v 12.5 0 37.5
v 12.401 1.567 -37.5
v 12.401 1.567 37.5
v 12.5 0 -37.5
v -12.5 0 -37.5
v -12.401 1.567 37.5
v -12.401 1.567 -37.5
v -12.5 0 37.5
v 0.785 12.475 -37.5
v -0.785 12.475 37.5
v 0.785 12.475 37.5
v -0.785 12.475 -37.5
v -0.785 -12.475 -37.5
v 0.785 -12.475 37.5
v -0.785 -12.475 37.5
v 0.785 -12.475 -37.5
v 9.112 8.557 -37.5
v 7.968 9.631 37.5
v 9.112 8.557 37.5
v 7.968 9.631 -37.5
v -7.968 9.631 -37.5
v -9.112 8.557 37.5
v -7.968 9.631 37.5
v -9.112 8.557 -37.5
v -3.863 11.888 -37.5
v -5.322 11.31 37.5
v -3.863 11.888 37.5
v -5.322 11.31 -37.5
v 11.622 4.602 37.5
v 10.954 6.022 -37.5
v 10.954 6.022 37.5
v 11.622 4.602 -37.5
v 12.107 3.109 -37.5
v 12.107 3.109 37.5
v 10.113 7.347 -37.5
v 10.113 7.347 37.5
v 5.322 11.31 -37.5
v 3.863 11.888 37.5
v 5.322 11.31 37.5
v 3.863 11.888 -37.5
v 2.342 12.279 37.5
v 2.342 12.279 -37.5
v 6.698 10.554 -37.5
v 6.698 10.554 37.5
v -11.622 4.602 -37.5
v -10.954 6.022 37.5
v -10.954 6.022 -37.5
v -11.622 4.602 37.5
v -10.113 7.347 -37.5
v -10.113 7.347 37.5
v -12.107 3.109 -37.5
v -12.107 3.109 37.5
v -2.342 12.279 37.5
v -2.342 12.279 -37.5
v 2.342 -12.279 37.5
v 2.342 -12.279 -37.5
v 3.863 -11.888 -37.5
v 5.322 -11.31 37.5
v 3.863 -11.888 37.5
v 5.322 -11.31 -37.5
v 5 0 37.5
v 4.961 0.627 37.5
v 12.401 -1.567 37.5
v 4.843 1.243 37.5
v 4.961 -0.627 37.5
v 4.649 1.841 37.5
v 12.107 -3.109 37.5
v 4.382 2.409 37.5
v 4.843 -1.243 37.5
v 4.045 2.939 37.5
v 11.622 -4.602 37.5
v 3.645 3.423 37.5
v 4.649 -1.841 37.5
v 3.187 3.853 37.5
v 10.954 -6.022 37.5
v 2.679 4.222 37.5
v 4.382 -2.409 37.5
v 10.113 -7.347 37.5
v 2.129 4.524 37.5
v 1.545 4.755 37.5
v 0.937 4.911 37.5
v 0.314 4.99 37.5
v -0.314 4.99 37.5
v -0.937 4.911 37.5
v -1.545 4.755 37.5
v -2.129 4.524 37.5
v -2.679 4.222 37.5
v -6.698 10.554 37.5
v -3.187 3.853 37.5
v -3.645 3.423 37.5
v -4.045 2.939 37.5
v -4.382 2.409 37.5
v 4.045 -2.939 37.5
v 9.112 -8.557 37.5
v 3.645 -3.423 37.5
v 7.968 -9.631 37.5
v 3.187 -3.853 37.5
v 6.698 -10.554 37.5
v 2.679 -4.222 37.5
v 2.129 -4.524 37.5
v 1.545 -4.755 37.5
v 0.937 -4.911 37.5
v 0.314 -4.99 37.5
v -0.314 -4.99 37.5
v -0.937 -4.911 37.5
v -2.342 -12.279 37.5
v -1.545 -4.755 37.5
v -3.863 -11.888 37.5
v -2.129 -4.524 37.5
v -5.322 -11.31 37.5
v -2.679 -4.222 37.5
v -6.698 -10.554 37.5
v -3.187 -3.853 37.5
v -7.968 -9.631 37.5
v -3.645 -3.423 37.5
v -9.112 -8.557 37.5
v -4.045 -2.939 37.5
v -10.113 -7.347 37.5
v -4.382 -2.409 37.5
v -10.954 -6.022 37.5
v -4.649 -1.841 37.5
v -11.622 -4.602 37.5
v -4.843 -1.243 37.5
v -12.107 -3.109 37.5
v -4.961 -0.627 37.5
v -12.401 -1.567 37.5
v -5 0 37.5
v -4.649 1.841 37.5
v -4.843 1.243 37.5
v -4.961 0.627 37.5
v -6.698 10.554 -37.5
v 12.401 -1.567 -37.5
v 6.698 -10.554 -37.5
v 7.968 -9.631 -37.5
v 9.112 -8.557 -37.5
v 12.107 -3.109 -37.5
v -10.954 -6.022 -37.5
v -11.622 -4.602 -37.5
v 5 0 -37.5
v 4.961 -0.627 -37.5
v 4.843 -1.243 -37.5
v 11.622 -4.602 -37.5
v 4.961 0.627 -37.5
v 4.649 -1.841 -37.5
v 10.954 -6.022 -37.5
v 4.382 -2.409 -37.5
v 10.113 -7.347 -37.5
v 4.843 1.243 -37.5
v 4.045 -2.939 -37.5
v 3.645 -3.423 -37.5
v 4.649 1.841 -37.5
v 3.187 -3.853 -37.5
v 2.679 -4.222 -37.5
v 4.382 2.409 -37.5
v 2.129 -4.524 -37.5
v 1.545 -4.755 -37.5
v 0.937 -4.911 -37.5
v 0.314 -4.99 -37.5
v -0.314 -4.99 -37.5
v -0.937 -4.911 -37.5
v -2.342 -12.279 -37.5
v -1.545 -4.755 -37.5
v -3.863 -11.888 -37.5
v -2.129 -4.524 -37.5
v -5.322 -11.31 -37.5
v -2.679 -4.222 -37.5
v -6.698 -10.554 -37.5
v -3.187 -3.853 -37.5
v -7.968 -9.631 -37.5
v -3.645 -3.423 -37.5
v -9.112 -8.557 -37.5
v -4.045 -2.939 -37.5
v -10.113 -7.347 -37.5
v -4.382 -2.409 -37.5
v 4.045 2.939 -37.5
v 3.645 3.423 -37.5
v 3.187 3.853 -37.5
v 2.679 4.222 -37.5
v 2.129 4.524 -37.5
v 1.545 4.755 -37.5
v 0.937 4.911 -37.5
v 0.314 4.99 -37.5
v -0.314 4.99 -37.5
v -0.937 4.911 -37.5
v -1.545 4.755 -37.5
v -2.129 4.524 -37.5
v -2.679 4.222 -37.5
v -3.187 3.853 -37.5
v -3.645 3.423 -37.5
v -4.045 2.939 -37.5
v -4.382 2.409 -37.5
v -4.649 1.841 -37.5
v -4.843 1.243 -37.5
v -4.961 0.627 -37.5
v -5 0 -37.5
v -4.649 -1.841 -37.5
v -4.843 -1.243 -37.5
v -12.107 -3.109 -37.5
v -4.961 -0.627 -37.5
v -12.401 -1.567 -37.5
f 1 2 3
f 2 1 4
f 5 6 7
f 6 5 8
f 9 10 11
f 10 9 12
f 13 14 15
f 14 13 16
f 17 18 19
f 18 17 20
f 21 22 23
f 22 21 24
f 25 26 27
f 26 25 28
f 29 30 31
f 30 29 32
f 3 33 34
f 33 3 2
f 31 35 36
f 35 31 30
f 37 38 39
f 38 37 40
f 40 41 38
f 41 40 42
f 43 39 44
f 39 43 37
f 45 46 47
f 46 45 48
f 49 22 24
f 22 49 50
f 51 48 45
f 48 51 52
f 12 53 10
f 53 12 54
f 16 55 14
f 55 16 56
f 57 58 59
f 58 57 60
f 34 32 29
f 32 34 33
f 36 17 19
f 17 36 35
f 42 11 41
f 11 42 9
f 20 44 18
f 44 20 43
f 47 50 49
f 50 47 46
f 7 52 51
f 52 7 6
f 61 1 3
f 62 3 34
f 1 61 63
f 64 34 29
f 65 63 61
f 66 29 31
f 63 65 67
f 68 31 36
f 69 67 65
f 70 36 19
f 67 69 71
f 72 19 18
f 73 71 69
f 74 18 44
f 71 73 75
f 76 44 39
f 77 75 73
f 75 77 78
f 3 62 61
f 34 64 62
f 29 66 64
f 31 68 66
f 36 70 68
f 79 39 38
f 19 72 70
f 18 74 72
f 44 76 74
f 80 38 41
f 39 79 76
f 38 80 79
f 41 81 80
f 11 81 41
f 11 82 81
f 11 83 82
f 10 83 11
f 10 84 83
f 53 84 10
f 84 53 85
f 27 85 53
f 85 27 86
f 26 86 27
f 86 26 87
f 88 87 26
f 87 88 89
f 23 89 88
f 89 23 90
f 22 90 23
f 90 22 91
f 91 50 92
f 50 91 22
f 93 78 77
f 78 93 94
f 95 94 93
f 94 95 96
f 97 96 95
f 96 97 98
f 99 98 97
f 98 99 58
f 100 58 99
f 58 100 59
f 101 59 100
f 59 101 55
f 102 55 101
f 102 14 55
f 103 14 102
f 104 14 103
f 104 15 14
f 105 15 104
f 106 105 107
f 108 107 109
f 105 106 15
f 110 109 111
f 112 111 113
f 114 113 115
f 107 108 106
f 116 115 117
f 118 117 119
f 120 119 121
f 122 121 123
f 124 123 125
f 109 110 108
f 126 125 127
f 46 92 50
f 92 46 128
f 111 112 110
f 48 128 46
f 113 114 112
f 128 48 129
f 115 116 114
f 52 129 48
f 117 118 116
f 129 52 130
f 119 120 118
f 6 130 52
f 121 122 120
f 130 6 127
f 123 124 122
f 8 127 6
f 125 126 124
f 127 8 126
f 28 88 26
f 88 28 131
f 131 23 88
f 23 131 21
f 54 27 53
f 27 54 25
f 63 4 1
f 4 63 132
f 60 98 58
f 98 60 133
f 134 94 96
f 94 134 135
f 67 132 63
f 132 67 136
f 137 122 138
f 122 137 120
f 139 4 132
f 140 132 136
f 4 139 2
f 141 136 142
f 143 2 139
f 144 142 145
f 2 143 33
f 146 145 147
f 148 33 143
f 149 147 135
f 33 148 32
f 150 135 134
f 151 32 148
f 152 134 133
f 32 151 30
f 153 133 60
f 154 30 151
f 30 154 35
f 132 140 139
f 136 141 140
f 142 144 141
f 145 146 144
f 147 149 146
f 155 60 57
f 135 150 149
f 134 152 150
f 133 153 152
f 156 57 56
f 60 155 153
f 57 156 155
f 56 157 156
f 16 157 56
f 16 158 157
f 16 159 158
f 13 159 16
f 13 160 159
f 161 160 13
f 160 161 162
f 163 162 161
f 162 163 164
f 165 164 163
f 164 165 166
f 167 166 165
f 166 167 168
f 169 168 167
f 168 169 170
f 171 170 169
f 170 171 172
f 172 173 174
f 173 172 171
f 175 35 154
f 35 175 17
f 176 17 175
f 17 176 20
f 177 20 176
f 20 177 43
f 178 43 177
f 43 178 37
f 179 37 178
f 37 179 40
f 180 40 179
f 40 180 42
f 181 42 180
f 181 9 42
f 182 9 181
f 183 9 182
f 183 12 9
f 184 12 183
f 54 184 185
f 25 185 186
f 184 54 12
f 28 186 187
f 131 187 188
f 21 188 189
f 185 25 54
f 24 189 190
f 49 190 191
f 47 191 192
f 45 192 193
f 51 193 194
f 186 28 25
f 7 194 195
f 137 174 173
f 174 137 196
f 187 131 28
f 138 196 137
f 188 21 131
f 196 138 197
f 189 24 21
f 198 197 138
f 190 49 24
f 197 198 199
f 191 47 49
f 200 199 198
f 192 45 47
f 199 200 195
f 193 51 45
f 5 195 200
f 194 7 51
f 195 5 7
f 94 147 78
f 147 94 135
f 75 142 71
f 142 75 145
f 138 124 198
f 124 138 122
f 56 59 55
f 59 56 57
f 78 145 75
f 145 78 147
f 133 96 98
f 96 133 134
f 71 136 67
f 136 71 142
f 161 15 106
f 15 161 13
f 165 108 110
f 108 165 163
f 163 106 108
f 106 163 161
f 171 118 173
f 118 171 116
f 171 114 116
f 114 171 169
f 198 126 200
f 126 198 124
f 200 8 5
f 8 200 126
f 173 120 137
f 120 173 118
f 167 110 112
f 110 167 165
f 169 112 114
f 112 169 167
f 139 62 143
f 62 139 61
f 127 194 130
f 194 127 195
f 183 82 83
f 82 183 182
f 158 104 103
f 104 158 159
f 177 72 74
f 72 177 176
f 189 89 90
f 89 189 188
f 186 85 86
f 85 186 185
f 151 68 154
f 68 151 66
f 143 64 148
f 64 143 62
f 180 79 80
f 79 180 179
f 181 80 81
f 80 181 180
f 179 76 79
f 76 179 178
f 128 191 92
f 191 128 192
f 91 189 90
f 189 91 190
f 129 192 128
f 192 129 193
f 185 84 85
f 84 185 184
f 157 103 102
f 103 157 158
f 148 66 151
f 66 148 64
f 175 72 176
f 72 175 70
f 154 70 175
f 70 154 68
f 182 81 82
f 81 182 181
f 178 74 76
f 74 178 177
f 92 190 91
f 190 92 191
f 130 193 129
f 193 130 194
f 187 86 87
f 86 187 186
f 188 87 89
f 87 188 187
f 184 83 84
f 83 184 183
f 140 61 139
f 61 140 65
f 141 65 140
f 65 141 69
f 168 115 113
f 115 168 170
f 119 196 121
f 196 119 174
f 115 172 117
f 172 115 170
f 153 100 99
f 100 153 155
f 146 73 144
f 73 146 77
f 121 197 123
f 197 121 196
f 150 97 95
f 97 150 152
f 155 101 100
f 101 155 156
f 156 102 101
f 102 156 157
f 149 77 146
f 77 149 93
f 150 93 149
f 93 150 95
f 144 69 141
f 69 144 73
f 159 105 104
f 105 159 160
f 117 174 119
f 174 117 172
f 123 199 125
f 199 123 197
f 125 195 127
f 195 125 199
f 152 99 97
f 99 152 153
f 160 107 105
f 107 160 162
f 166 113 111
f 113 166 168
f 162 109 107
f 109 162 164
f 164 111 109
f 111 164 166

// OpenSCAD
$fn = 50;


difference() {
	union() {
		translate(v = [0, 0, -37.5000000000]) {
			cylinder(h = 75, r = 12.5000000000);
		}
	}
	union() {
		translate(v = [0, 0, -100.0000000000]) {
			cylinder(h = 200, r = 5);
		}
	}
}
